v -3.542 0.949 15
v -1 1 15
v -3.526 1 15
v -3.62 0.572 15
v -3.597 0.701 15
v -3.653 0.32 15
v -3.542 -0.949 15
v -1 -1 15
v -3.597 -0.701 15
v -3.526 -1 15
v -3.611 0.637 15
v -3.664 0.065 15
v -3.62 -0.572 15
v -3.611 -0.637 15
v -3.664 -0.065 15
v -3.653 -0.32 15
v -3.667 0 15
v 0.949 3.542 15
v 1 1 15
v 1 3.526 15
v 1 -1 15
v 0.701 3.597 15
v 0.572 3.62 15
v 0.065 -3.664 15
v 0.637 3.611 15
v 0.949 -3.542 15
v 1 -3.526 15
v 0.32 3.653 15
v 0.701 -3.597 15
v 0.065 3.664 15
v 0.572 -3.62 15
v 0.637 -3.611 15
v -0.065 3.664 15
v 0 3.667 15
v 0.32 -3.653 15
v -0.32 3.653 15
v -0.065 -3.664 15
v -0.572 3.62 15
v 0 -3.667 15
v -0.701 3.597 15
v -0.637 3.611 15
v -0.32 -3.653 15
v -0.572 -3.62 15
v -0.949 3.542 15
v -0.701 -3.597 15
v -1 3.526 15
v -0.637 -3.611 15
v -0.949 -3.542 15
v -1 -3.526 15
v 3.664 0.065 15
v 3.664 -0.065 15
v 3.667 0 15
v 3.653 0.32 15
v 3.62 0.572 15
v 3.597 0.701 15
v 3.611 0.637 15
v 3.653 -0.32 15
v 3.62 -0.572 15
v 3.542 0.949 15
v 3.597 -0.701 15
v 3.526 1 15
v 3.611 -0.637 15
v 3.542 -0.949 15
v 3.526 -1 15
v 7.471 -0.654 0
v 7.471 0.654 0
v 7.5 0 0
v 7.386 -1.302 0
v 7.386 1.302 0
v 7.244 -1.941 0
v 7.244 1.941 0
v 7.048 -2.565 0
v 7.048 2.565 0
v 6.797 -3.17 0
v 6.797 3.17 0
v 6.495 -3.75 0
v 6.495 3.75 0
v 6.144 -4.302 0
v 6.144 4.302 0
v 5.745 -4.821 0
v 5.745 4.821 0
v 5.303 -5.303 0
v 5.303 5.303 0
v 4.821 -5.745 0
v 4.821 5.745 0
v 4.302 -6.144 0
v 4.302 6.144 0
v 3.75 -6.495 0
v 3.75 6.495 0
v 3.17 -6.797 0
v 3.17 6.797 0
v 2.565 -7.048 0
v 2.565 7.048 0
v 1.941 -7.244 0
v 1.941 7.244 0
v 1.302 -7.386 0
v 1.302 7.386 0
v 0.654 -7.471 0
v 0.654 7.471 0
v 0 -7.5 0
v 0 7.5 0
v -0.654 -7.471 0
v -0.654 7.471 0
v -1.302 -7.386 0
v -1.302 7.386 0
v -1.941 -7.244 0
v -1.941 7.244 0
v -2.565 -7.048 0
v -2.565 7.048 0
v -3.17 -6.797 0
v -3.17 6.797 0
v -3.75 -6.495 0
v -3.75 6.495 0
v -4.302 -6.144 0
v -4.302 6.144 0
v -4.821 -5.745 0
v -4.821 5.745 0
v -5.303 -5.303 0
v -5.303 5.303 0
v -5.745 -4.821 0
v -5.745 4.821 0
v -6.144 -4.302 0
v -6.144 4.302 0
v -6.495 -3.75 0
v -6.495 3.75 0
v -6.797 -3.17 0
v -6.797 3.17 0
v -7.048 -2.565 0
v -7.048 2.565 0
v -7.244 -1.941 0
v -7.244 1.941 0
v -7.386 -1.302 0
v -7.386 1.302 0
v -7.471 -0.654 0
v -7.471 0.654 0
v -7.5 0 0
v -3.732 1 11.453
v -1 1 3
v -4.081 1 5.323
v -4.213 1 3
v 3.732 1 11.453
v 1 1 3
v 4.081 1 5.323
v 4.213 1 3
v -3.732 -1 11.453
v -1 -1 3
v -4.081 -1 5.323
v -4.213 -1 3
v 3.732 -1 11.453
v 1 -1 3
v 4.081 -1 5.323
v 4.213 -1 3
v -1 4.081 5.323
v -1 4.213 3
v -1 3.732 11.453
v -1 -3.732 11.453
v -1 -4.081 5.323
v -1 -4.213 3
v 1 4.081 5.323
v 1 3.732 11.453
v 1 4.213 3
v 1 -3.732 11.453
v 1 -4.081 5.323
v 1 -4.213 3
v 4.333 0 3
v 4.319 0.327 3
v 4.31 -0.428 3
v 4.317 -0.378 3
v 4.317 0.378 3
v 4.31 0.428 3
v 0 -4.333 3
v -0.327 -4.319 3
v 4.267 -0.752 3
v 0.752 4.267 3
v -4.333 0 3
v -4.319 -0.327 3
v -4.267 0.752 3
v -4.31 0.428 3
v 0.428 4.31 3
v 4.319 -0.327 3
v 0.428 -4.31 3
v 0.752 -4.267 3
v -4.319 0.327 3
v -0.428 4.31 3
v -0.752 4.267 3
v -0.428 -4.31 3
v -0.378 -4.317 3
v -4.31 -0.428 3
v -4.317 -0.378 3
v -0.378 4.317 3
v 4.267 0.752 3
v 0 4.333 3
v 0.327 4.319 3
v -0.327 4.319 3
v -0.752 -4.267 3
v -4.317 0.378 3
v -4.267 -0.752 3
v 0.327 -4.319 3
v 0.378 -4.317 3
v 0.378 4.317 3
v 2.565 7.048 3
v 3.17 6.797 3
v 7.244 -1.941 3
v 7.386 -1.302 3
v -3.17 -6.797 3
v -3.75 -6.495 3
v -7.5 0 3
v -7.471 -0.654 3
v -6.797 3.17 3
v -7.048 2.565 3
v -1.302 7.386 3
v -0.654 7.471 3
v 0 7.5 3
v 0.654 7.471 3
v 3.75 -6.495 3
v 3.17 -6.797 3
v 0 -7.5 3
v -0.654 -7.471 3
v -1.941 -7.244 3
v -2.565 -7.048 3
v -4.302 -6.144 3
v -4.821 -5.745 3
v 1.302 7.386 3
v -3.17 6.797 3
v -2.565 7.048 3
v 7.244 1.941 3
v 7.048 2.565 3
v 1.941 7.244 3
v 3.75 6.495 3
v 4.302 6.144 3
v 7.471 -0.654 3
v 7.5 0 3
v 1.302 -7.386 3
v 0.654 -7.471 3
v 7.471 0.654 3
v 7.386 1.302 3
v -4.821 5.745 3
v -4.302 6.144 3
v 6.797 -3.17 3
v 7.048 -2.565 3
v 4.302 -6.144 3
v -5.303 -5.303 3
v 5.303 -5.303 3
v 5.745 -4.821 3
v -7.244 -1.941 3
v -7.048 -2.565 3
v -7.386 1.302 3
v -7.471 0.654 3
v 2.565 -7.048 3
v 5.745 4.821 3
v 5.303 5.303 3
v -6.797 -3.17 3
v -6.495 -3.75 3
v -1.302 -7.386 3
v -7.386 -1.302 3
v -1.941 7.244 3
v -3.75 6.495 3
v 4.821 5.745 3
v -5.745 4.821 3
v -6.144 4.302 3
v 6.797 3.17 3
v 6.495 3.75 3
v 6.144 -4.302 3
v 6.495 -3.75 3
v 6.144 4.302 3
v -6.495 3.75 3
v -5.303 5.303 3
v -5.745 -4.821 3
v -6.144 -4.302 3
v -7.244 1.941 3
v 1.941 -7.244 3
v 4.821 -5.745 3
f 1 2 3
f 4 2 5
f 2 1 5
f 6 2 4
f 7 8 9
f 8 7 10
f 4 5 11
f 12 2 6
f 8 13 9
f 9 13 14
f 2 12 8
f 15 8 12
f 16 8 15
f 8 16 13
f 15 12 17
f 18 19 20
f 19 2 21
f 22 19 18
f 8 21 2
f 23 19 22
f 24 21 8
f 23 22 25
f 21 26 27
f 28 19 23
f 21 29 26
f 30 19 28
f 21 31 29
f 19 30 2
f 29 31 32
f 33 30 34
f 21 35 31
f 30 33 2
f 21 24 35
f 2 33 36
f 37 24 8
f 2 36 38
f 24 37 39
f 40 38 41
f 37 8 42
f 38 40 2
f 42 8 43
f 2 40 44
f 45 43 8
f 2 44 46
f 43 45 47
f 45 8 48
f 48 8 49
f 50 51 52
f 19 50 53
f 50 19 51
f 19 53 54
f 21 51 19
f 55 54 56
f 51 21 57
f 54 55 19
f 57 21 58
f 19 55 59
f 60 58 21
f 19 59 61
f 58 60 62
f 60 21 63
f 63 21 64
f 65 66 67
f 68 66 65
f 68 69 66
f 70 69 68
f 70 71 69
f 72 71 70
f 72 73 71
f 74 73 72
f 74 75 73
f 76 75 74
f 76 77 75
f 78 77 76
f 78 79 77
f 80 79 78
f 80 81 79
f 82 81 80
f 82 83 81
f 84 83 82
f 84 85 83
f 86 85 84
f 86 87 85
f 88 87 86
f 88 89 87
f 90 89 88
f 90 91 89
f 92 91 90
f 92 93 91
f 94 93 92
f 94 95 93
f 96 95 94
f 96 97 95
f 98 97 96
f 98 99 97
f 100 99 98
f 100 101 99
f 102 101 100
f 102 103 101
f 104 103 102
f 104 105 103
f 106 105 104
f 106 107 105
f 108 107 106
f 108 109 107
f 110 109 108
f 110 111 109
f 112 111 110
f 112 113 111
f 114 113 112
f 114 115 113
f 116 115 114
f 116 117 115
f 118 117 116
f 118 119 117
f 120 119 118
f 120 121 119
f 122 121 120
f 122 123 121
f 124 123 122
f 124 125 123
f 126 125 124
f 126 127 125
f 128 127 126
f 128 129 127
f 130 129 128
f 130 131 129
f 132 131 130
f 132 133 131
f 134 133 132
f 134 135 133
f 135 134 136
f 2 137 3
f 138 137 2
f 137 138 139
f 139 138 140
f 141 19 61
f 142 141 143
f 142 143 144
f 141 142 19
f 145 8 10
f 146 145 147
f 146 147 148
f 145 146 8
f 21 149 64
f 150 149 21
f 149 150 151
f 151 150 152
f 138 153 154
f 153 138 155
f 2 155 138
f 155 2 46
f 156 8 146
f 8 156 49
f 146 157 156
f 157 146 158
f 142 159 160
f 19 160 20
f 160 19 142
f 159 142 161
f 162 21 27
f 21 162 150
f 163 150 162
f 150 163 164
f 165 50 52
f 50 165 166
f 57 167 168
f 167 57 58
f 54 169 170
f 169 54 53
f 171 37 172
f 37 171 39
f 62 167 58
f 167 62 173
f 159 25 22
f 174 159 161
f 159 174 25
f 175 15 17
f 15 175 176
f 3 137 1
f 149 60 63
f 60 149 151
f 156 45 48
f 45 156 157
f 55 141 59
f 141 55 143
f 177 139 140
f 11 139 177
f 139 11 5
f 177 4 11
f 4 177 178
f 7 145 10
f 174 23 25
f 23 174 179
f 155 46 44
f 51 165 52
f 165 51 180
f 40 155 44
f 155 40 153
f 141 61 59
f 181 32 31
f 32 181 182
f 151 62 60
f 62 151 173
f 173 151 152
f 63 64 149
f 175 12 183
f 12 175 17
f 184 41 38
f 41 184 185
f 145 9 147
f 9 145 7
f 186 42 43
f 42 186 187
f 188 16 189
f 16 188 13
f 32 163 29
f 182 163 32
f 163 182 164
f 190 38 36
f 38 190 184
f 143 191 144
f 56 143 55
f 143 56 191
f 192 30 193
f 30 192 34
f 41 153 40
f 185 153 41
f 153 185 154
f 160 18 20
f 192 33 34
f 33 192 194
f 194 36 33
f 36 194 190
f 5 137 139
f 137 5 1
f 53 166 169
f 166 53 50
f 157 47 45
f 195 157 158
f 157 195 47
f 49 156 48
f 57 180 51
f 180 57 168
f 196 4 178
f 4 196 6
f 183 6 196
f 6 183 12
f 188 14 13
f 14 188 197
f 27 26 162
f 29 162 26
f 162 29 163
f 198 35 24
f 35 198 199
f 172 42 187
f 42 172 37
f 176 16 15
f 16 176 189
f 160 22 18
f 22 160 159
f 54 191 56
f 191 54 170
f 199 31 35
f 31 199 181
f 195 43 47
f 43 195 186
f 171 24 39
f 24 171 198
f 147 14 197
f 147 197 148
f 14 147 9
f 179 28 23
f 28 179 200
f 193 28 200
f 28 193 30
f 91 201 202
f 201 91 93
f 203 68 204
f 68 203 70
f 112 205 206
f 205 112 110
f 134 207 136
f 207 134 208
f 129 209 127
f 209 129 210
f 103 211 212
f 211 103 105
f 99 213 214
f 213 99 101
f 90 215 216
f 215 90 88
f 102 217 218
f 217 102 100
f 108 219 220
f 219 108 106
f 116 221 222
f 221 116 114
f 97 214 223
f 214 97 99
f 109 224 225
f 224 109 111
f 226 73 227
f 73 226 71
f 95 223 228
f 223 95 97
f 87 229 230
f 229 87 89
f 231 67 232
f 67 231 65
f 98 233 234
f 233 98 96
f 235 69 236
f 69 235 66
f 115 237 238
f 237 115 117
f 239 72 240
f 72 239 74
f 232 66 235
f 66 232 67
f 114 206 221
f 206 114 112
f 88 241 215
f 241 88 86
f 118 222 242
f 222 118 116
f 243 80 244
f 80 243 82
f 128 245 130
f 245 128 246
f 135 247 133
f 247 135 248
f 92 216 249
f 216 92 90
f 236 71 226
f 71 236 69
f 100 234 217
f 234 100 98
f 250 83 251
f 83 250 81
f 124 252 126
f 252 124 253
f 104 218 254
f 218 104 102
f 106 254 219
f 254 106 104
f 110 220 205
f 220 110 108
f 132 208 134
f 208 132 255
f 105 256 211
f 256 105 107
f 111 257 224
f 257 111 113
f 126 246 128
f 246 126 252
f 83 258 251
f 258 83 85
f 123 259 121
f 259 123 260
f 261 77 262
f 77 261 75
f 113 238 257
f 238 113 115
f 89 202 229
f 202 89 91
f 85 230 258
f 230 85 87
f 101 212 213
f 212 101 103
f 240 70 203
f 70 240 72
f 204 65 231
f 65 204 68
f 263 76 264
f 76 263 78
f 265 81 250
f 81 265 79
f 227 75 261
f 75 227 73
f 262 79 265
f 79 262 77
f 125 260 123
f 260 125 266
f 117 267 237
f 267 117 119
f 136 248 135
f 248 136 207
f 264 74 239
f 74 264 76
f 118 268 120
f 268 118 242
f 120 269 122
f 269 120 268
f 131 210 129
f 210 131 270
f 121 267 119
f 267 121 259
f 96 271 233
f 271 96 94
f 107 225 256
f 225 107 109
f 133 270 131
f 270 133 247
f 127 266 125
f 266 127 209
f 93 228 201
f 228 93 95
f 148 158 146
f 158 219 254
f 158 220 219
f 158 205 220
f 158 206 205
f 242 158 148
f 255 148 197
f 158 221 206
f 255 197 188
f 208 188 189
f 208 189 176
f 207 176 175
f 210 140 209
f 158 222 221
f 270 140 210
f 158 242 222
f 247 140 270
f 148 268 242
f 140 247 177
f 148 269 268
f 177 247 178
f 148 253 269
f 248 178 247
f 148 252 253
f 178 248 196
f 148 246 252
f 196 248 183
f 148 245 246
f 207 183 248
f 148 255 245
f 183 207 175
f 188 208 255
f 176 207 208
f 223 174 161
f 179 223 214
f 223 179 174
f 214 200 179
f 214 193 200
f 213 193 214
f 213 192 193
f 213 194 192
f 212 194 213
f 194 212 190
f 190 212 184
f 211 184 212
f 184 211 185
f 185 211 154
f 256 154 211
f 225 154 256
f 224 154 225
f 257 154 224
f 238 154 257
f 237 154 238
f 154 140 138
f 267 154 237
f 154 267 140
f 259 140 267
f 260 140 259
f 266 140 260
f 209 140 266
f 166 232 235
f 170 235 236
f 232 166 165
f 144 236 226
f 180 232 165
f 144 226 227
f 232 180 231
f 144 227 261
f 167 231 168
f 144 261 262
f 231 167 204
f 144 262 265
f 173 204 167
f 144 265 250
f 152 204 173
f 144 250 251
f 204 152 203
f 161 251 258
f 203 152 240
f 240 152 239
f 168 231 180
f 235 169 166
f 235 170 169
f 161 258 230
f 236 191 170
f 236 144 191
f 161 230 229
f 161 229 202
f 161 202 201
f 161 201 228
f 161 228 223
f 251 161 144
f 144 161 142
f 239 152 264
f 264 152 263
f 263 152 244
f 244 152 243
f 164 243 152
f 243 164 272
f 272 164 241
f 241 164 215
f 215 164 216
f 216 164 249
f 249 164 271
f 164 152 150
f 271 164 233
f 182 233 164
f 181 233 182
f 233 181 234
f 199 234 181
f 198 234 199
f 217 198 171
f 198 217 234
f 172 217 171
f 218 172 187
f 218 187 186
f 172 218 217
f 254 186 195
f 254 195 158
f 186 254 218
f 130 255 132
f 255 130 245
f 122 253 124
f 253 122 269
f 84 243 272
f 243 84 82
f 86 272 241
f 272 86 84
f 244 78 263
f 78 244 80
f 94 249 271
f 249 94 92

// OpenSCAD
$fn = 72;

DIAMETER_HEAD = 15;
DIAMETER_LEG_TOP = 9;
DIAMETER_LEG_BOTTOM = 7;

THICKNESS_HEAD = 3;
THICKNESS_LEG = 2;

HEIGHT_LEG = 15;

FILE_LOGO="";

module head() {
    cylinder(h=THICKNESS_HEAD, d=DIAMETER_HEAD);
}

module leg() {
    intersection () {
        for (angle = [0, 90]) {
            translate([0, 0, HEIGHT_LEG / 2])
                rotate([0, 0, angle])
                    cube([DIAMETER_HEAD, THICKNESS_LEG, HEIGHT_LEG], true);
        }
        cylinder(h=(THICKNESS_HEAD + HEIGHT_LEG), d1=DIAMETER_LEG_TOP, d2=DIAMETER_LEG_BOTTOM);
    }
}

module logo() {
    translate([-DIAMETER_HEAD / 2, -DIAMETER_HEAD / 2, 0])
        resize([DIAMETER_HEAD, DIAMETER_HEAD, 0])
            linear_extrude(height=0.6, convexity=3, center=true)
                import(FILE_LOGO, convexity=3);
}

module plug() {
    head();
    leg();
}

difference() {
    plug();
    if (FILE_LOGO != "") {
        logo();
    }
}
